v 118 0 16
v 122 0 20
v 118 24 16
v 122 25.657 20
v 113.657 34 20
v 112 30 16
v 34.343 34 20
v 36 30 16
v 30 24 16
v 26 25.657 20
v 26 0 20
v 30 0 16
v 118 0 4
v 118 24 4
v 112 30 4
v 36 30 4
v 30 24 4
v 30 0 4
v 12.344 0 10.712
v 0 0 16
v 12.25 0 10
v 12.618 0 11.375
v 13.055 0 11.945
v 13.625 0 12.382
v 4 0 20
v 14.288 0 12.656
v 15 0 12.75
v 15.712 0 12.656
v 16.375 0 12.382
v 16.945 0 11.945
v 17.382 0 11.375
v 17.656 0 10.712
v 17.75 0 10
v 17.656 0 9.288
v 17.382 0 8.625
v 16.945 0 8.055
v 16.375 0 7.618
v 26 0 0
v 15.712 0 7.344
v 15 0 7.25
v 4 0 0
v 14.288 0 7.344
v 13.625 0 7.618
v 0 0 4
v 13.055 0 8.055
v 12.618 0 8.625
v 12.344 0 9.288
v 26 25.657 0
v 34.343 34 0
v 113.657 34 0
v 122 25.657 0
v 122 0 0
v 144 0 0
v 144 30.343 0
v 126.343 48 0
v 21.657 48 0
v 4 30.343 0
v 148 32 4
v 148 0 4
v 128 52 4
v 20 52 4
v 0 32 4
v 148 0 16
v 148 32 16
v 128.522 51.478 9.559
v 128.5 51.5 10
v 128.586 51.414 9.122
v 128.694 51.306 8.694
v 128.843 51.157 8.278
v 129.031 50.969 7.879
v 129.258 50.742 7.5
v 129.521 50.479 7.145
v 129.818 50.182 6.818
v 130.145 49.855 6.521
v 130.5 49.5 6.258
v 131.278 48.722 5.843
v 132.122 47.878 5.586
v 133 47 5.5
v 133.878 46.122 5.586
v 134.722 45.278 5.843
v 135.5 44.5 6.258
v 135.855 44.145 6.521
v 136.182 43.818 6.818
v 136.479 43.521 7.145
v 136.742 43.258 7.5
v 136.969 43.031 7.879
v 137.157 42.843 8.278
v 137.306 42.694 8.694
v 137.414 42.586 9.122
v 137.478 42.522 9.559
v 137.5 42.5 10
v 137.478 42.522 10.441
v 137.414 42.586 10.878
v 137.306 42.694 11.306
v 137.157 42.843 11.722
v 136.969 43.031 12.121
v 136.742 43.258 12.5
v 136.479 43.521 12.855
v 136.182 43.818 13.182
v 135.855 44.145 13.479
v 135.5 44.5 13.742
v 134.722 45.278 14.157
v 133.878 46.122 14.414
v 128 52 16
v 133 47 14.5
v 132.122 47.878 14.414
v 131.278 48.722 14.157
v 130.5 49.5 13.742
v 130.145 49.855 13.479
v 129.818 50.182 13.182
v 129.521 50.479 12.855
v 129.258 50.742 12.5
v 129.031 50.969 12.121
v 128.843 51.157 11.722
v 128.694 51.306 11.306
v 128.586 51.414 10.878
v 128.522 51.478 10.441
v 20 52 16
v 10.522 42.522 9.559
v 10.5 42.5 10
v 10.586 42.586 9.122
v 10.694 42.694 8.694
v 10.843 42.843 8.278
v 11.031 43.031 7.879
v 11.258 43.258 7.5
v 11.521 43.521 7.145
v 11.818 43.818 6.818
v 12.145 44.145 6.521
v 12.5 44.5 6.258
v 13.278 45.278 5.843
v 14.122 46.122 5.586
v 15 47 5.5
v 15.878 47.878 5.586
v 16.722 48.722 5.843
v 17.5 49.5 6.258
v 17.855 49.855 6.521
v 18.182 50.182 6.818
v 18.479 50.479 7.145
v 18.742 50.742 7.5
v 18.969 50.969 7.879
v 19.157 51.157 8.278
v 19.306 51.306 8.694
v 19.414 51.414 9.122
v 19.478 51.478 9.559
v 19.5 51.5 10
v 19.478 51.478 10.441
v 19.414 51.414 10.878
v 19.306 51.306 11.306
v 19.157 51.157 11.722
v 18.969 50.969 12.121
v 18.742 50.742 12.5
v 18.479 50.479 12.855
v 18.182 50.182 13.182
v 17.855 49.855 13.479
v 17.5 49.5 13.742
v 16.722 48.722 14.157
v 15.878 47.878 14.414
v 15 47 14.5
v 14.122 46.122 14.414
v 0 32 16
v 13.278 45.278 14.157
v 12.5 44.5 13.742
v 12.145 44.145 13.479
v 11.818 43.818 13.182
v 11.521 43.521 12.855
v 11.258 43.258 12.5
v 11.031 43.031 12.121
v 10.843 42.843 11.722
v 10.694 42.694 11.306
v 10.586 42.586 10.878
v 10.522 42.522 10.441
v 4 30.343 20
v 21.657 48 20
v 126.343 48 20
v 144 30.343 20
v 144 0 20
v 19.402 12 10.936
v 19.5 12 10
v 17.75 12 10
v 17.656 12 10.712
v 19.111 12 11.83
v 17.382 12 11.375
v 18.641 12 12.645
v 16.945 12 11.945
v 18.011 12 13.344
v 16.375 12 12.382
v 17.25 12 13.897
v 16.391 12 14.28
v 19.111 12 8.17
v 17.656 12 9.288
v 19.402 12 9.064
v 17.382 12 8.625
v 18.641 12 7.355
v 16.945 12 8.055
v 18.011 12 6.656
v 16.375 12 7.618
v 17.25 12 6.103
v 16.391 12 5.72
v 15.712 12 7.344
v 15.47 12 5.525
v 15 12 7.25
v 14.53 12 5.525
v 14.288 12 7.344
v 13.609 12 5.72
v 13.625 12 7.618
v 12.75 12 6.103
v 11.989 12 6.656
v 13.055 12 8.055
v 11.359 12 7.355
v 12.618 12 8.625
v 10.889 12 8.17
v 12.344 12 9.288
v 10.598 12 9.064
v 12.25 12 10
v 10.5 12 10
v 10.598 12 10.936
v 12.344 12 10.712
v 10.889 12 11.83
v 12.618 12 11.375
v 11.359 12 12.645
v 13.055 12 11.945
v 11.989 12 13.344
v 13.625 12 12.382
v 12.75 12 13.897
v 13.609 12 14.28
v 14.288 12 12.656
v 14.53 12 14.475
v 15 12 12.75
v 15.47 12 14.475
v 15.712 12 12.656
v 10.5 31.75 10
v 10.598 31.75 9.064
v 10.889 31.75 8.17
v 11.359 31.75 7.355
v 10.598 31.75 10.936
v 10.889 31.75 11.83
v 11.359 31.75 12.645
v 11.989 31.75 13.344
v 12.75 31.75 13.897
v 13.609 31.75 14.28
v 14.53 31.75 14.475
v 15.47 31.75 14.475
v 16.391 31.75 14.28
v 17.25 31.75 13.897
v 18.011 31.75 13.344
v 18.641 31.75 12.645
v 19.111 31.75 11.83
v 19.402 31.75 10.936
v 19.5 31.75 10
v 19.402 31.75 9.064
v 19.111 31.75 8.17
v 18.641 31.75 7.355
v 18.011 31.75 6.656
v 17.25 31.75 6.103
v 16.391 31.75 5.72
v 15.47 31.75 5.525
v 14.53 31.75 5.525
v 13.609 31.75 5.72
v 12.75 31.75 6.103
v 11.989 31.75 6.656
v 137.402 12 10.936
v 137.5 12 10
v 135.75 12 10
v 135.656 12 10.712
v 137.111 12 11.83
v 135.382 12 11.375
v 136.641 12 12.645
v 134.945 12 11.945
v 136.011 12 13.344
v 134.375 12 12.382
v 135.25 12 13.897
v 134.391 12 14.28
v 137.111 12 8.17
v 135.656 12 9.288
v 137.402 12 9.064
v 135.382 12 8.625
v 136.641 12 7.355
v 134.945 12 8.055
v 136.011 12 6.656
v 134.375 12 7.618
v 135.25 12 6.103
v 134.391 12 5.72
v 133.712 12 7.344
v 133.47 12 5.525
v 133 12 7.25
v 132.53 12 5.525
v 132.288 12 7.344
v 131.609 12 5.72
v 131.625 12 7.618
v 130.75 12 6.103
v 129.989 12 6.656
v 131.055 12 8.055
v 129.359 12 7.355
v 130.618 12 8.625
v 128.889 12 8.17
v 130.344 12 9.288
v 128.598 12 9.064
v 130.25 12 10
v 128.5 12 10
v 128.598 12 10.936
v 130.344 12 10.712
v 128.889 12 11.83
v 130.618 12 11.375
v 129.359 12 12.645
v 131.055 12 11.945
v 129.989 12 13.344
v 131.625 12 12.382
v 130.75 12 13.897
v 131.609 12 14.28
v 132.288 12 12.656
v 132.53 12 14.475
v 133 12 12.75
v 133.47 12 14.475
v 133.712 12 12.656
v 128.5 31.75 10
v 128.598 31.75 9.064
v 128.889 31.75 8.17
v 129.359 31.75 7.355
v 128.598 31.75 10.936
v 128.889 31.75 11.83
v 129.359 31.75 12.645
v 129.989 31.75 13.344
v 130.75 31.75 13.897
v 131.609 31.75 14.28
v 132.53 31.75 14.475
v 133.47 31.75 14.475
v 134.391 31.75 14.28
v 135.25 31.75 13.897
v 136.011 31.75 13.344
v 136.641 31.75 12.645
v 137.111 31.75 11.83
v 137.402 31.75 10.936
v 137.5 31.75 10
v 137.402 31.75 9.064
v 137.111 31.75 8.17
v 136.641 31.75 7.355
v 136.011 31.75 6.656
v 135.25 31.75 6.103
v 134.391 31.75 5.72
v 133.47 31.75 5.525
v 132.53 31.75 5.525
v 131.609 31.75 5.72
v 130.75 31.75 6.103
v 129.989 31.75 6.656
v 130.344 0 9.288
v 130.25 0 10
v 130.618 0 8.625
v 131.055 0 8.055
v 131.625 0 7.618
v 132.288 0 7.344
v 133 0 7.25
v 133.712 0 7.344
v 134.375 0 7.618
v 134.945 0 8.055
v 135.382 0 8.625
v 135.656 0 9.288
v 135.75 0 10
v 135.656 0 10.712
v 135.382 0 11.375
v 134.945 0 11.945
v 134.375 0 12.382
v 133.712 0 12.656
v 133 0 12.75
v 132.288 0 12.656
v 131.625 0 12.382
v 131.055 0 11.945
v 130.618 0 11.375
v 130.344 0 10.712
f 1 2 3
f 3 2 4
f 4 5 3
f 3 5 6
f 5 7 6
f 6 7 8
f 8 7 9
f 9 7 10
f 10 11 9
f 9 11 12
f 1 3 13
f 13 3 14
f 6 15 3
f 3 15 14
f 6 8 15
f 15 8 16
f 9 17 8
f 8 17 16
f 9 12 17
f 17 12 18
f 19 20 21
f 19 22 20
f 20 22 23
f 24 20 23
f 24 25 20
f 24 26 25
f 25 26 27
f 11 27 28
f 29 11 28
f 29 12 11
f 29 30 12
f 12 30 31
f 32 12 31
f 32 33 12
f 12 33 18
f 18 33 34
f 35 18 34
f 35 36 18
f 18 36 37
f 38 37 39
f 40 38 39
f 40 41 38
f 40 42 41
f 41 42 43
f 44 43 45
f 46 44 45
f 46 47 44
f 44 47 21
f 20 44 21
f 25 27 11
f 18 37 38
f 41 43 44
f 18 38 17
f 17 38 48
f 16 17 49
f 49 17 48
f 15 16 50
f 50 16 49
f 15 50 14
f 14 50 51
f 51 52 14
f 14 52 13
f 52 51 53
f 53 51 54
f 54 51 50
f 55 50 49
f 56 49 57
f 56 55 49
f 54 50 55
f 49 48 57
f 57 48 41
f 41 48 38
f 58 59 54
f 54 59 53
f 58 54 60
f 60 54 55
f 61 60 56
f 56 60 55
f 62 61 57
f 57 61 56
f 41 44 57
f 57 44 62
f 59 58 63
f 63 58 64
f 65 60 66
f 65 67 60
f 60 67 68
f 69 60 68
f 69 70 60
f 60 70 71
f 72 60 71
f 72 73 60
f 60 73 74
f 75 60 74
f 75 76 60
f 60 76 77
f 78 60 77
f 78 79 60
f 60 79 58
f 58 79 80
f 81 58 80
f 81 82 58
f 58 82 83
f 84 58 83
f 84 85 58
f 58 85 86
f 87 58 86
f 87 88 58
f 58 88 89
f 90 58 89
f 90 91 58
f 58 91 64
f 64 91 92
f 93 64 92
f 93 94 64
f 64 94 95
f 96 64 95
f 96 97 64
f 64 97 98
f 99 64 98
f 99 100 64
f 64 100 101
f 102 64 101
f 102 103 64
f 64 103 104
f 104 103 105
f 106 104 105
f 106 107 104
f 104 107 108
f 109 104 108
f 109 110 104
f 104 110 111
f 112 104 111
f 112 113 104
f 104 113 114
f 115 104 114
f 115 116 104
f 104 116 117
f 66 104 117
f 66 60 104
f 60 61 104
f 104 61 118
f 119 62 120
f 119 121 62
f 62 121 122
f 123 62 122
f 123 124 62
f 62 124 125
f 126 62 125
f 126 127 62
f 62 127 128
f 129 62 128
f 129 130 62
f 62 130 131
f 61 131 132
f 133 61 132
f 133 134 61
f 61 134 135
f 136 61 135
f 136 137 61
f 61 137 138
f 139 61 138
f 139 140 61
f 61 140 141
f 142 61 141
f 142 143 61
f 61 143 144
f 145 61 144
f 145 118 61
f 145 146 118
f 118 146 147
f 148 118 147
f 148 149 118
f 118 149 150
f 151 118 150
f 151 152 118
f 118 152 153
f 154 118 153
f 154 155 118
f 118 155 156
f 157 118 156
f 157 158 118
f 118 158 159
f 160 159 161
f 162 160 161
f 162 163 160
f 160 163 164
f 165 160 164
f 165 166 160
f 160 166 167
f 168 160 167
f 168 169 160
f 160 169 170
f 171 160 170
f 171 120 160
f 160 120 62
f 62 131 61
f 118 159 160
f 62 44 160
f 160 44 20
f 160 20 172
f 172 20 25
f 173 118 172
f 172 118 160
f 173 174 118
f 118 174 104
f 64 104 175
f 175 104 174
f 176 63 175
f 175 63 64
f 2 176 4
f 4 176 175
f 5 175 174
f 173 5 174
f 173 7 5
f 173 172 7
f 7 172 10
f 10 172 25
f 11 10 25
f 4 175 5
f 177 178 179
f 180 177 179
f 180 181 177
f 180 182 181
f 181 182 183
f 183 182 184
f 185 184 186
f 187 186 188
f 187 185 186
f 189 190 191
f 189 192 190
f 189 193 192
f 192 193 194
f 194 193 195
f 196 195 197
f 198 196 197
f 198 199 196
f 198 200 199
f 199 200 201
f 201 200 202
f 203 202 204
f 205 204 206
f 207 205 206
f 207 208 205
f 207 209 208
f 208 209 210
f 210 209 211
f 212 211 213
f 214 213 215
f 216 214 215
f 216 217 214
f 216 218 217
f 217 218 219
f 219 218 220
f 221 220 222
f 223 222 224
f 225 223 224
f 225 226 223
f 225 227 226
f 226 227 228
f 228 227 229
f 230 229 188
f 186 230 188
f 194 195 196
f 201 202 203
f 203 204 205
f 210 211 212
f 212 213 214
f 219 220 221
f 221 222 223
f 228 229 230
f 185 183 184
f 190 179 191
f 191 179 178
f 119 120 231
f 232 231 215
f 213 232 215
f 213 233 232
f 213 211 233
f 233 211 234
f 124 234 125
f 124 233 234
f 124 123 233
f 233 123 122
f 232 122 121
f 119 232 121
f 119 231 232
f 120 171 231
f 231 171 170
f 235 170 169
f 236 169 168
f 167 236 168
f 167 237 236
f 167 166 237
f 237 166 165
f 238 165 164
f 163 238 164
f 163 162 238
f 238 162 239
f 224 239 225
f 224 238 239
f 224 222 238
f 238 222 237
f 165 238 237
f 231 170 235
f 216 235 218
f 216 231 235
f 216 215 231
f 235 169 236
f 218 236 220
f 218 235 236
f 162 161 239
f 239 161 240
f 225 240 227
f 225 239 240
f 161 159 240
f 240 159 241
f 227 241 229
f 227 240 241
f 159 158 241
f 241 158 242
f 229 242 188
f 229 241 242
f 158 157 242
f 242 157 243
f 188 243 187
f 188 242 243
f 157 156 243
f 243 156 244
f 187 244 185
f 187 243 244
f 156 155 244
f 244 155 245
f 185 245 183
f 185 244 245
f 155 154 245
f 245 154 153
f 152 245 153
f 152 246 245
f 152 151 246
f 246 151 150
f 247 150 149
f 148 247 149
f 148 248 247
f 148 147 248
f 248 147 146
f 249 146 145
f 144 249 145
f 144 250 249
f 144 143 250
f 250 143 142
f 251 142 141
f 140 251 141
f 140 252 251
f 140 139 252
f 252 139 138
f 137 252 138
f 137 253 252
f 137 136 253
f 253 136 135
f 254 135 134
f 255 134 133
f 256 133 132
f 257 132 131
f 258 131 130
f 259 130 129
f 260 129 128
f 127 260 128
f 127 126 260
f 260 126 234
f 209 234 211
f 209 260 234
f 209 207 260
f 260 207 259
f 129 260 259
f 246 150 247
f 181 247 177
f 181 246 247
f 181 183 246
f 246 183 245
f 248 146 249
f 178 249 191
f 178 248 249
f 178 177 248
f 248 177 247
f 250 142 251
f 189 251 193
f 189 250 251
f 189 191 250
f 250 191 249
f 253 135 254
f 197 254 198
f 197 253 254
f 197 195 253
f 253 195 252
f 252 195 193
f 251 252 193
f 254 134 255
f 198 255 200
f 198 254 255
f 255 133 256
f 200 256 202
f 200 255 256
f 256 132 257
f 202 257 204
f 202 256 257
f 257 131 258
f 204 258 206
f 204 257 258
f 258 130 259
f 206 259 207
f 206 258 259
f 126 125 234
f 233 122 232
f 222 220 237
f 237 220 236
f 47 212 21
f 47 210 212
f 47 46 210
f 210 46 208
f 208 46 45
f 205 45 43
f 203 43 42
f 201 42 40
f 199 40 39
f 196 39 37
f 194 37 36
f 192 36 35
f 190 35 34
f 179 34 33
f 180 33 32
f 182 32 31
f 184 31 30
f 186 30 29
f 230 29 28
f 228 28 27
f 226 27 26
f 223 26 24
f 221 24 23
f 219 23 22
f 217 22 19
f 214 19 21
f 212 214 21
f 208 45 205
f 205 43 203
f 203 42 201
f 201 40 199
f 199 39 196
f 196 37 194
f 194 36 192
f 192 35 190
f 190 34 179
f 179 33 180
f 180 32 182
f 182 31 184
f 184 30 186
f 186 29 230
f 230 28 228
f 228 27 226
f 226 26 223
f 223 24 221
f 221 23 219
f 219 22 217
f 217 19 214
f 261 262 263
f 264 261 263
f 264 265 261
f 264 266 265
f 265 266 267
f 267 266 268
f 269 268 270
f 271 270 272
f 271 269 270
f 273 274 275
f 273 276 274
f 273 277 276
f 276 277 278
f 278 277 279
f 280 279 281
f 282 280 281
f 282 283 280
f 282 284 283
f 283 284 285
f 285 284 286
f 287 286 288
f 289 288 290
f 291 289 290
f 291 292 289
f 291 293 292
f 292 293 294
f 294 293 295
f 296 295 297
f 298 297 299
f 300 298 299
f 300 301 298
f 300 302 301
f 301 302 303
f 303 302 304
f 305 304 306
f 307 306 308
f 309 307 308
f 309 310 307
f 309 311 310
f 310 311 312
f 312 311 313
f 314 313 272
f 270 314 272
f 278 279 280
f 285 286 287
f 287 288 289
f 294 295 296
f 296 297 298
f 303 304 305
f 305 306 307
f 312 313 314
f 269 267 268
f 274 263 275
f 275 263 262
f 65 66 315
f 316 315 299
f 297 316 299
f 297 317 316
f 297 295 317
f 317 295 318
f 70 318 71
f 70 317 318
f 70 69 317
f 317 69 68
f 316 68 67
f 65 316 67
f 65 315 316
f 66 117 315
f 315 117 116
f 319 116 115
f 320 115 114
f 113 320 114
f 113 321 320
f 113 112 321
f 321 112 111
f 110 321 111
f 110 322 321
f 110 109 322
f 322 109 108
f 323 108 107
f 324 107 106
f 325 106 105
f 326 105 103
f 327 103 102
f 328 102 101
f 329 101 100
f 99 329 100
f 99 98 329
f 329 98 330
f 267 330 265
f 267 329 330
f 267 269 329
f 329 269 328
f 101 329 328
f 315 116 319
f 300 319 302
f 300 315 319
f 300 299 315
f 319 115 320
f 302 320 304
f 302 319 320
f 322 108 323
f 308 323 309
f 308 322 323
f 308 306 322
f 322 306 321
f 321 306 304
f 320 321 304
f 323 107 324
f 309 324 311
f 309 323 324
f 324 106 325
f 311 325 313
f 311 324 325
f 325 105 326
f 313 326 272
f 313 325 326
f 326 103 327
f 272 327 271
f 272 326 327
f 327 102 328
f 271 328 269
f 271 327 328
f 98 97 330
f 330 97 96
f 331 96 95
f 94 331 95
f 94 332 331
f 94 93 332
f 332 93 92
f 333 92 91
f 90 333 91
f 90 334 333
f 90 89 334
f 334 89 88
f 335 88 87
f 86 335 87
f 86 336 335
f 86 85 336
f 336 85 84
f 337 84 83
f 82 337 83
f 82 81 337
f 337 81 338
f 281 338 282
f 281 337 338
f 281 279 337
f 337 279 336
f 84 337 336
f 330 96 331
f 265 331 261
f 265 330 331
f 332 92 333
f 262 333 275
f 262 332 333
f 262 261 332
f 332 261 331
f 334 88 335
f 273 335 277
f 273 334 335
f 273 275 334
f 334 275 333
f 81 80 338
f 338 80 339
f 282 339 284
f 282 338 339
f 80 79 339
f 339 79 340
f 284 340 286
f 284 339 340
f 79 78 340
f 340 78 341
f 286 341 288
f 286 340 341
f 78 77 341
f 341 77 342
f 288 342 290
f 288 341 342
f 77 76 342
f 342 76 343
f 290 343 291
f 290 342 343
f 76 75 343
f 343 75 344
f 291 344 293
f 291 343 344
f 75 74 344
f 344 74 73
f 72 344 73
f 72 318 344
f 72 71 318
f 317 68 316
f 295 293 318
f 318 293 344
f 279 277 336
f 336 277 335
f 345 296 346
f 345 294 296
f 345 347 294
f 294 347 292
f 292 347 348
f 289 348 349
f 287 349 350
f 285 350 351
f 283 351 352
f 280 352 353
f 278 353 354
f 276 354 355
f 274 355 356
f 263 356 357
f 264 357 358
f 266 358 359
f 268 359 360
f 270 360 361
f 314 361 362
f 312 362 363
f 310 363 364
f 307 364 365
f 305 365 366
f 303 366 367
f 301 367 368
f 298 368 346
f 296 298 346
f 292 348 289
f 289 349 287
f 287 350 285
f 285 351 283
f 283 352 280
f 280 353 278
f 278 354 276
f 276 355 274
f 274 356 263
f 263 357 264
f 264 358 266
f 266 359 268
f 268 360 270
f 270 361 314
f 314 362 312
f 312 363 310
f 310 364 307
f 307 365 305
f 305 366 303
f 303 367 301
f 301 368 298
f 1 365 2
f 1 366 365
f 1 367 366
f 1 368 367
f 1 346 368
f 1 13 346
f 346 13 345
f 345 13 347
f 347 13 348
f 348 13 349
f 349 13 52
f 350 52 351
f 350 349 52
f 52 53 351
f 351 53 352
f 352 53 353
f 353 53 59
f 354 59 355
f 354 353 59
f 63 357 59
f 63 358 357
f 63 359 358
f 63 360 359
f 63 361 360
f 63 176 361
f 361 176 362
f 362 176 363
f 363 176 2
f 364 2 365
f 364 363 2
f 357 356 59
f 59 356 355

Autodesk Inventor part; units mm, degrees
ref_plane "YZ Plane" through (0, 0, 0) normal (1, 0, 0) x (0, 1, 0)
ref_plane "XZ Plane" through (0, 0, 0) normal (0, 1, 0) x (-1, 0, 0)
ref_plane "XY Plane" through (0, 0, 0) normal (0, 0, 1) x (1, 0, 0)
sketch "Sketch1" plane through (0, 0, 0) normal (0, 0, 1) x (1, 0, 0)
  line L0 (0, 0) -> (0, 52)
  line L1 (0, 52) -> (148, 52)
  line L2 (148, 52) -> (148, 0)
  line L3 (148, 0) -> (118, 0)
  line L4 (118, 0) -> (118, 30)
  line L5 (118, 30) -> (30, 30)
  line L6 (30, 30) -> (30, 0)
  line L7 (30, 0) -> (0, 0)
  dimension "d0" = 52
  dimension "d1" = 88
  dimension "d2" = 30
  dimension "d3" = 30
extrude "Extrusion1" add sketch "Sketch1" along normal blind 20
chamfer "Chamfer1" distance 20 angle 45 2 edges at (0, 52, 10) (148, 52, 10)
chamfer "Chamfer4" distance 6 angle 45 2 edges at (118, 30, 10) (30, 30, 10)
sketch "Sketch3" plane through (20, 52, 0) normal (0, 1, 0) x (1, 0, 0)
  line L0 (-20, -20) -> (0, -20) projected
  line L1 (0, -20) -> (0, 0) projected
  line L2 (0, 0) -> (-20, 0) projected
  line L3 (-20, 0) -> (-20, -20) projected
  line L4 (108, -20) -> (128, -20) projected
  line L5 (128, -20) -> (128, 0) projected
  line L6 (128, 0) -> (108, 0) projected
  line L7 (108, 0) -> (108, -20) projected
  line L8 (10, 0) -> (-20, 0) projected
  line L9 (10, 0) -> (10, -20) projected
  line L10 (-20, -20) -> (10, -20) projected
  line L11 (-20, 0) -> (-20, -20) projected
  line L12 (128, 0) -> (98, 0) projected
  line L13 (128, 0) -> (128, -20) projected
  line L14 (98, -20) -> (128, -20) projected
  line L15 (98, 0) -> (98, -20) projected
  point P0 (-5, -10)
  point P1 (113, -10)
  dimension "d25" = 15
  dimension "d26" = 10
  dimension "d27" = 15
hole "Hole2" at (15, 52, 10) at (133, 52, 10) direction (0, -1, 0) diameter 5.5 end through all counterbore diameter 9 counterbore depth 40
chamfer "Chamfer3" distance 4 angle 45 20 edges at (74, 52, 20) (10, 42, 20) (0, 16, 20) (138, 42, 20) (148, 16, 20) (138, 42, 0) (148, 16, 0) (74, 52, 0) (10, 42, 0) (0, 16, 0) (30, 12, 0) (74, 30, 0) (118, 12, 0) (74, 30, 20) (30, 12, 20) (118, 12, 20) (115, 27, 0) (33, 27, 0) (33, 27, 20) (115, 27, 20)
properties part number "FrameHandle" material "ABS Plastic"
